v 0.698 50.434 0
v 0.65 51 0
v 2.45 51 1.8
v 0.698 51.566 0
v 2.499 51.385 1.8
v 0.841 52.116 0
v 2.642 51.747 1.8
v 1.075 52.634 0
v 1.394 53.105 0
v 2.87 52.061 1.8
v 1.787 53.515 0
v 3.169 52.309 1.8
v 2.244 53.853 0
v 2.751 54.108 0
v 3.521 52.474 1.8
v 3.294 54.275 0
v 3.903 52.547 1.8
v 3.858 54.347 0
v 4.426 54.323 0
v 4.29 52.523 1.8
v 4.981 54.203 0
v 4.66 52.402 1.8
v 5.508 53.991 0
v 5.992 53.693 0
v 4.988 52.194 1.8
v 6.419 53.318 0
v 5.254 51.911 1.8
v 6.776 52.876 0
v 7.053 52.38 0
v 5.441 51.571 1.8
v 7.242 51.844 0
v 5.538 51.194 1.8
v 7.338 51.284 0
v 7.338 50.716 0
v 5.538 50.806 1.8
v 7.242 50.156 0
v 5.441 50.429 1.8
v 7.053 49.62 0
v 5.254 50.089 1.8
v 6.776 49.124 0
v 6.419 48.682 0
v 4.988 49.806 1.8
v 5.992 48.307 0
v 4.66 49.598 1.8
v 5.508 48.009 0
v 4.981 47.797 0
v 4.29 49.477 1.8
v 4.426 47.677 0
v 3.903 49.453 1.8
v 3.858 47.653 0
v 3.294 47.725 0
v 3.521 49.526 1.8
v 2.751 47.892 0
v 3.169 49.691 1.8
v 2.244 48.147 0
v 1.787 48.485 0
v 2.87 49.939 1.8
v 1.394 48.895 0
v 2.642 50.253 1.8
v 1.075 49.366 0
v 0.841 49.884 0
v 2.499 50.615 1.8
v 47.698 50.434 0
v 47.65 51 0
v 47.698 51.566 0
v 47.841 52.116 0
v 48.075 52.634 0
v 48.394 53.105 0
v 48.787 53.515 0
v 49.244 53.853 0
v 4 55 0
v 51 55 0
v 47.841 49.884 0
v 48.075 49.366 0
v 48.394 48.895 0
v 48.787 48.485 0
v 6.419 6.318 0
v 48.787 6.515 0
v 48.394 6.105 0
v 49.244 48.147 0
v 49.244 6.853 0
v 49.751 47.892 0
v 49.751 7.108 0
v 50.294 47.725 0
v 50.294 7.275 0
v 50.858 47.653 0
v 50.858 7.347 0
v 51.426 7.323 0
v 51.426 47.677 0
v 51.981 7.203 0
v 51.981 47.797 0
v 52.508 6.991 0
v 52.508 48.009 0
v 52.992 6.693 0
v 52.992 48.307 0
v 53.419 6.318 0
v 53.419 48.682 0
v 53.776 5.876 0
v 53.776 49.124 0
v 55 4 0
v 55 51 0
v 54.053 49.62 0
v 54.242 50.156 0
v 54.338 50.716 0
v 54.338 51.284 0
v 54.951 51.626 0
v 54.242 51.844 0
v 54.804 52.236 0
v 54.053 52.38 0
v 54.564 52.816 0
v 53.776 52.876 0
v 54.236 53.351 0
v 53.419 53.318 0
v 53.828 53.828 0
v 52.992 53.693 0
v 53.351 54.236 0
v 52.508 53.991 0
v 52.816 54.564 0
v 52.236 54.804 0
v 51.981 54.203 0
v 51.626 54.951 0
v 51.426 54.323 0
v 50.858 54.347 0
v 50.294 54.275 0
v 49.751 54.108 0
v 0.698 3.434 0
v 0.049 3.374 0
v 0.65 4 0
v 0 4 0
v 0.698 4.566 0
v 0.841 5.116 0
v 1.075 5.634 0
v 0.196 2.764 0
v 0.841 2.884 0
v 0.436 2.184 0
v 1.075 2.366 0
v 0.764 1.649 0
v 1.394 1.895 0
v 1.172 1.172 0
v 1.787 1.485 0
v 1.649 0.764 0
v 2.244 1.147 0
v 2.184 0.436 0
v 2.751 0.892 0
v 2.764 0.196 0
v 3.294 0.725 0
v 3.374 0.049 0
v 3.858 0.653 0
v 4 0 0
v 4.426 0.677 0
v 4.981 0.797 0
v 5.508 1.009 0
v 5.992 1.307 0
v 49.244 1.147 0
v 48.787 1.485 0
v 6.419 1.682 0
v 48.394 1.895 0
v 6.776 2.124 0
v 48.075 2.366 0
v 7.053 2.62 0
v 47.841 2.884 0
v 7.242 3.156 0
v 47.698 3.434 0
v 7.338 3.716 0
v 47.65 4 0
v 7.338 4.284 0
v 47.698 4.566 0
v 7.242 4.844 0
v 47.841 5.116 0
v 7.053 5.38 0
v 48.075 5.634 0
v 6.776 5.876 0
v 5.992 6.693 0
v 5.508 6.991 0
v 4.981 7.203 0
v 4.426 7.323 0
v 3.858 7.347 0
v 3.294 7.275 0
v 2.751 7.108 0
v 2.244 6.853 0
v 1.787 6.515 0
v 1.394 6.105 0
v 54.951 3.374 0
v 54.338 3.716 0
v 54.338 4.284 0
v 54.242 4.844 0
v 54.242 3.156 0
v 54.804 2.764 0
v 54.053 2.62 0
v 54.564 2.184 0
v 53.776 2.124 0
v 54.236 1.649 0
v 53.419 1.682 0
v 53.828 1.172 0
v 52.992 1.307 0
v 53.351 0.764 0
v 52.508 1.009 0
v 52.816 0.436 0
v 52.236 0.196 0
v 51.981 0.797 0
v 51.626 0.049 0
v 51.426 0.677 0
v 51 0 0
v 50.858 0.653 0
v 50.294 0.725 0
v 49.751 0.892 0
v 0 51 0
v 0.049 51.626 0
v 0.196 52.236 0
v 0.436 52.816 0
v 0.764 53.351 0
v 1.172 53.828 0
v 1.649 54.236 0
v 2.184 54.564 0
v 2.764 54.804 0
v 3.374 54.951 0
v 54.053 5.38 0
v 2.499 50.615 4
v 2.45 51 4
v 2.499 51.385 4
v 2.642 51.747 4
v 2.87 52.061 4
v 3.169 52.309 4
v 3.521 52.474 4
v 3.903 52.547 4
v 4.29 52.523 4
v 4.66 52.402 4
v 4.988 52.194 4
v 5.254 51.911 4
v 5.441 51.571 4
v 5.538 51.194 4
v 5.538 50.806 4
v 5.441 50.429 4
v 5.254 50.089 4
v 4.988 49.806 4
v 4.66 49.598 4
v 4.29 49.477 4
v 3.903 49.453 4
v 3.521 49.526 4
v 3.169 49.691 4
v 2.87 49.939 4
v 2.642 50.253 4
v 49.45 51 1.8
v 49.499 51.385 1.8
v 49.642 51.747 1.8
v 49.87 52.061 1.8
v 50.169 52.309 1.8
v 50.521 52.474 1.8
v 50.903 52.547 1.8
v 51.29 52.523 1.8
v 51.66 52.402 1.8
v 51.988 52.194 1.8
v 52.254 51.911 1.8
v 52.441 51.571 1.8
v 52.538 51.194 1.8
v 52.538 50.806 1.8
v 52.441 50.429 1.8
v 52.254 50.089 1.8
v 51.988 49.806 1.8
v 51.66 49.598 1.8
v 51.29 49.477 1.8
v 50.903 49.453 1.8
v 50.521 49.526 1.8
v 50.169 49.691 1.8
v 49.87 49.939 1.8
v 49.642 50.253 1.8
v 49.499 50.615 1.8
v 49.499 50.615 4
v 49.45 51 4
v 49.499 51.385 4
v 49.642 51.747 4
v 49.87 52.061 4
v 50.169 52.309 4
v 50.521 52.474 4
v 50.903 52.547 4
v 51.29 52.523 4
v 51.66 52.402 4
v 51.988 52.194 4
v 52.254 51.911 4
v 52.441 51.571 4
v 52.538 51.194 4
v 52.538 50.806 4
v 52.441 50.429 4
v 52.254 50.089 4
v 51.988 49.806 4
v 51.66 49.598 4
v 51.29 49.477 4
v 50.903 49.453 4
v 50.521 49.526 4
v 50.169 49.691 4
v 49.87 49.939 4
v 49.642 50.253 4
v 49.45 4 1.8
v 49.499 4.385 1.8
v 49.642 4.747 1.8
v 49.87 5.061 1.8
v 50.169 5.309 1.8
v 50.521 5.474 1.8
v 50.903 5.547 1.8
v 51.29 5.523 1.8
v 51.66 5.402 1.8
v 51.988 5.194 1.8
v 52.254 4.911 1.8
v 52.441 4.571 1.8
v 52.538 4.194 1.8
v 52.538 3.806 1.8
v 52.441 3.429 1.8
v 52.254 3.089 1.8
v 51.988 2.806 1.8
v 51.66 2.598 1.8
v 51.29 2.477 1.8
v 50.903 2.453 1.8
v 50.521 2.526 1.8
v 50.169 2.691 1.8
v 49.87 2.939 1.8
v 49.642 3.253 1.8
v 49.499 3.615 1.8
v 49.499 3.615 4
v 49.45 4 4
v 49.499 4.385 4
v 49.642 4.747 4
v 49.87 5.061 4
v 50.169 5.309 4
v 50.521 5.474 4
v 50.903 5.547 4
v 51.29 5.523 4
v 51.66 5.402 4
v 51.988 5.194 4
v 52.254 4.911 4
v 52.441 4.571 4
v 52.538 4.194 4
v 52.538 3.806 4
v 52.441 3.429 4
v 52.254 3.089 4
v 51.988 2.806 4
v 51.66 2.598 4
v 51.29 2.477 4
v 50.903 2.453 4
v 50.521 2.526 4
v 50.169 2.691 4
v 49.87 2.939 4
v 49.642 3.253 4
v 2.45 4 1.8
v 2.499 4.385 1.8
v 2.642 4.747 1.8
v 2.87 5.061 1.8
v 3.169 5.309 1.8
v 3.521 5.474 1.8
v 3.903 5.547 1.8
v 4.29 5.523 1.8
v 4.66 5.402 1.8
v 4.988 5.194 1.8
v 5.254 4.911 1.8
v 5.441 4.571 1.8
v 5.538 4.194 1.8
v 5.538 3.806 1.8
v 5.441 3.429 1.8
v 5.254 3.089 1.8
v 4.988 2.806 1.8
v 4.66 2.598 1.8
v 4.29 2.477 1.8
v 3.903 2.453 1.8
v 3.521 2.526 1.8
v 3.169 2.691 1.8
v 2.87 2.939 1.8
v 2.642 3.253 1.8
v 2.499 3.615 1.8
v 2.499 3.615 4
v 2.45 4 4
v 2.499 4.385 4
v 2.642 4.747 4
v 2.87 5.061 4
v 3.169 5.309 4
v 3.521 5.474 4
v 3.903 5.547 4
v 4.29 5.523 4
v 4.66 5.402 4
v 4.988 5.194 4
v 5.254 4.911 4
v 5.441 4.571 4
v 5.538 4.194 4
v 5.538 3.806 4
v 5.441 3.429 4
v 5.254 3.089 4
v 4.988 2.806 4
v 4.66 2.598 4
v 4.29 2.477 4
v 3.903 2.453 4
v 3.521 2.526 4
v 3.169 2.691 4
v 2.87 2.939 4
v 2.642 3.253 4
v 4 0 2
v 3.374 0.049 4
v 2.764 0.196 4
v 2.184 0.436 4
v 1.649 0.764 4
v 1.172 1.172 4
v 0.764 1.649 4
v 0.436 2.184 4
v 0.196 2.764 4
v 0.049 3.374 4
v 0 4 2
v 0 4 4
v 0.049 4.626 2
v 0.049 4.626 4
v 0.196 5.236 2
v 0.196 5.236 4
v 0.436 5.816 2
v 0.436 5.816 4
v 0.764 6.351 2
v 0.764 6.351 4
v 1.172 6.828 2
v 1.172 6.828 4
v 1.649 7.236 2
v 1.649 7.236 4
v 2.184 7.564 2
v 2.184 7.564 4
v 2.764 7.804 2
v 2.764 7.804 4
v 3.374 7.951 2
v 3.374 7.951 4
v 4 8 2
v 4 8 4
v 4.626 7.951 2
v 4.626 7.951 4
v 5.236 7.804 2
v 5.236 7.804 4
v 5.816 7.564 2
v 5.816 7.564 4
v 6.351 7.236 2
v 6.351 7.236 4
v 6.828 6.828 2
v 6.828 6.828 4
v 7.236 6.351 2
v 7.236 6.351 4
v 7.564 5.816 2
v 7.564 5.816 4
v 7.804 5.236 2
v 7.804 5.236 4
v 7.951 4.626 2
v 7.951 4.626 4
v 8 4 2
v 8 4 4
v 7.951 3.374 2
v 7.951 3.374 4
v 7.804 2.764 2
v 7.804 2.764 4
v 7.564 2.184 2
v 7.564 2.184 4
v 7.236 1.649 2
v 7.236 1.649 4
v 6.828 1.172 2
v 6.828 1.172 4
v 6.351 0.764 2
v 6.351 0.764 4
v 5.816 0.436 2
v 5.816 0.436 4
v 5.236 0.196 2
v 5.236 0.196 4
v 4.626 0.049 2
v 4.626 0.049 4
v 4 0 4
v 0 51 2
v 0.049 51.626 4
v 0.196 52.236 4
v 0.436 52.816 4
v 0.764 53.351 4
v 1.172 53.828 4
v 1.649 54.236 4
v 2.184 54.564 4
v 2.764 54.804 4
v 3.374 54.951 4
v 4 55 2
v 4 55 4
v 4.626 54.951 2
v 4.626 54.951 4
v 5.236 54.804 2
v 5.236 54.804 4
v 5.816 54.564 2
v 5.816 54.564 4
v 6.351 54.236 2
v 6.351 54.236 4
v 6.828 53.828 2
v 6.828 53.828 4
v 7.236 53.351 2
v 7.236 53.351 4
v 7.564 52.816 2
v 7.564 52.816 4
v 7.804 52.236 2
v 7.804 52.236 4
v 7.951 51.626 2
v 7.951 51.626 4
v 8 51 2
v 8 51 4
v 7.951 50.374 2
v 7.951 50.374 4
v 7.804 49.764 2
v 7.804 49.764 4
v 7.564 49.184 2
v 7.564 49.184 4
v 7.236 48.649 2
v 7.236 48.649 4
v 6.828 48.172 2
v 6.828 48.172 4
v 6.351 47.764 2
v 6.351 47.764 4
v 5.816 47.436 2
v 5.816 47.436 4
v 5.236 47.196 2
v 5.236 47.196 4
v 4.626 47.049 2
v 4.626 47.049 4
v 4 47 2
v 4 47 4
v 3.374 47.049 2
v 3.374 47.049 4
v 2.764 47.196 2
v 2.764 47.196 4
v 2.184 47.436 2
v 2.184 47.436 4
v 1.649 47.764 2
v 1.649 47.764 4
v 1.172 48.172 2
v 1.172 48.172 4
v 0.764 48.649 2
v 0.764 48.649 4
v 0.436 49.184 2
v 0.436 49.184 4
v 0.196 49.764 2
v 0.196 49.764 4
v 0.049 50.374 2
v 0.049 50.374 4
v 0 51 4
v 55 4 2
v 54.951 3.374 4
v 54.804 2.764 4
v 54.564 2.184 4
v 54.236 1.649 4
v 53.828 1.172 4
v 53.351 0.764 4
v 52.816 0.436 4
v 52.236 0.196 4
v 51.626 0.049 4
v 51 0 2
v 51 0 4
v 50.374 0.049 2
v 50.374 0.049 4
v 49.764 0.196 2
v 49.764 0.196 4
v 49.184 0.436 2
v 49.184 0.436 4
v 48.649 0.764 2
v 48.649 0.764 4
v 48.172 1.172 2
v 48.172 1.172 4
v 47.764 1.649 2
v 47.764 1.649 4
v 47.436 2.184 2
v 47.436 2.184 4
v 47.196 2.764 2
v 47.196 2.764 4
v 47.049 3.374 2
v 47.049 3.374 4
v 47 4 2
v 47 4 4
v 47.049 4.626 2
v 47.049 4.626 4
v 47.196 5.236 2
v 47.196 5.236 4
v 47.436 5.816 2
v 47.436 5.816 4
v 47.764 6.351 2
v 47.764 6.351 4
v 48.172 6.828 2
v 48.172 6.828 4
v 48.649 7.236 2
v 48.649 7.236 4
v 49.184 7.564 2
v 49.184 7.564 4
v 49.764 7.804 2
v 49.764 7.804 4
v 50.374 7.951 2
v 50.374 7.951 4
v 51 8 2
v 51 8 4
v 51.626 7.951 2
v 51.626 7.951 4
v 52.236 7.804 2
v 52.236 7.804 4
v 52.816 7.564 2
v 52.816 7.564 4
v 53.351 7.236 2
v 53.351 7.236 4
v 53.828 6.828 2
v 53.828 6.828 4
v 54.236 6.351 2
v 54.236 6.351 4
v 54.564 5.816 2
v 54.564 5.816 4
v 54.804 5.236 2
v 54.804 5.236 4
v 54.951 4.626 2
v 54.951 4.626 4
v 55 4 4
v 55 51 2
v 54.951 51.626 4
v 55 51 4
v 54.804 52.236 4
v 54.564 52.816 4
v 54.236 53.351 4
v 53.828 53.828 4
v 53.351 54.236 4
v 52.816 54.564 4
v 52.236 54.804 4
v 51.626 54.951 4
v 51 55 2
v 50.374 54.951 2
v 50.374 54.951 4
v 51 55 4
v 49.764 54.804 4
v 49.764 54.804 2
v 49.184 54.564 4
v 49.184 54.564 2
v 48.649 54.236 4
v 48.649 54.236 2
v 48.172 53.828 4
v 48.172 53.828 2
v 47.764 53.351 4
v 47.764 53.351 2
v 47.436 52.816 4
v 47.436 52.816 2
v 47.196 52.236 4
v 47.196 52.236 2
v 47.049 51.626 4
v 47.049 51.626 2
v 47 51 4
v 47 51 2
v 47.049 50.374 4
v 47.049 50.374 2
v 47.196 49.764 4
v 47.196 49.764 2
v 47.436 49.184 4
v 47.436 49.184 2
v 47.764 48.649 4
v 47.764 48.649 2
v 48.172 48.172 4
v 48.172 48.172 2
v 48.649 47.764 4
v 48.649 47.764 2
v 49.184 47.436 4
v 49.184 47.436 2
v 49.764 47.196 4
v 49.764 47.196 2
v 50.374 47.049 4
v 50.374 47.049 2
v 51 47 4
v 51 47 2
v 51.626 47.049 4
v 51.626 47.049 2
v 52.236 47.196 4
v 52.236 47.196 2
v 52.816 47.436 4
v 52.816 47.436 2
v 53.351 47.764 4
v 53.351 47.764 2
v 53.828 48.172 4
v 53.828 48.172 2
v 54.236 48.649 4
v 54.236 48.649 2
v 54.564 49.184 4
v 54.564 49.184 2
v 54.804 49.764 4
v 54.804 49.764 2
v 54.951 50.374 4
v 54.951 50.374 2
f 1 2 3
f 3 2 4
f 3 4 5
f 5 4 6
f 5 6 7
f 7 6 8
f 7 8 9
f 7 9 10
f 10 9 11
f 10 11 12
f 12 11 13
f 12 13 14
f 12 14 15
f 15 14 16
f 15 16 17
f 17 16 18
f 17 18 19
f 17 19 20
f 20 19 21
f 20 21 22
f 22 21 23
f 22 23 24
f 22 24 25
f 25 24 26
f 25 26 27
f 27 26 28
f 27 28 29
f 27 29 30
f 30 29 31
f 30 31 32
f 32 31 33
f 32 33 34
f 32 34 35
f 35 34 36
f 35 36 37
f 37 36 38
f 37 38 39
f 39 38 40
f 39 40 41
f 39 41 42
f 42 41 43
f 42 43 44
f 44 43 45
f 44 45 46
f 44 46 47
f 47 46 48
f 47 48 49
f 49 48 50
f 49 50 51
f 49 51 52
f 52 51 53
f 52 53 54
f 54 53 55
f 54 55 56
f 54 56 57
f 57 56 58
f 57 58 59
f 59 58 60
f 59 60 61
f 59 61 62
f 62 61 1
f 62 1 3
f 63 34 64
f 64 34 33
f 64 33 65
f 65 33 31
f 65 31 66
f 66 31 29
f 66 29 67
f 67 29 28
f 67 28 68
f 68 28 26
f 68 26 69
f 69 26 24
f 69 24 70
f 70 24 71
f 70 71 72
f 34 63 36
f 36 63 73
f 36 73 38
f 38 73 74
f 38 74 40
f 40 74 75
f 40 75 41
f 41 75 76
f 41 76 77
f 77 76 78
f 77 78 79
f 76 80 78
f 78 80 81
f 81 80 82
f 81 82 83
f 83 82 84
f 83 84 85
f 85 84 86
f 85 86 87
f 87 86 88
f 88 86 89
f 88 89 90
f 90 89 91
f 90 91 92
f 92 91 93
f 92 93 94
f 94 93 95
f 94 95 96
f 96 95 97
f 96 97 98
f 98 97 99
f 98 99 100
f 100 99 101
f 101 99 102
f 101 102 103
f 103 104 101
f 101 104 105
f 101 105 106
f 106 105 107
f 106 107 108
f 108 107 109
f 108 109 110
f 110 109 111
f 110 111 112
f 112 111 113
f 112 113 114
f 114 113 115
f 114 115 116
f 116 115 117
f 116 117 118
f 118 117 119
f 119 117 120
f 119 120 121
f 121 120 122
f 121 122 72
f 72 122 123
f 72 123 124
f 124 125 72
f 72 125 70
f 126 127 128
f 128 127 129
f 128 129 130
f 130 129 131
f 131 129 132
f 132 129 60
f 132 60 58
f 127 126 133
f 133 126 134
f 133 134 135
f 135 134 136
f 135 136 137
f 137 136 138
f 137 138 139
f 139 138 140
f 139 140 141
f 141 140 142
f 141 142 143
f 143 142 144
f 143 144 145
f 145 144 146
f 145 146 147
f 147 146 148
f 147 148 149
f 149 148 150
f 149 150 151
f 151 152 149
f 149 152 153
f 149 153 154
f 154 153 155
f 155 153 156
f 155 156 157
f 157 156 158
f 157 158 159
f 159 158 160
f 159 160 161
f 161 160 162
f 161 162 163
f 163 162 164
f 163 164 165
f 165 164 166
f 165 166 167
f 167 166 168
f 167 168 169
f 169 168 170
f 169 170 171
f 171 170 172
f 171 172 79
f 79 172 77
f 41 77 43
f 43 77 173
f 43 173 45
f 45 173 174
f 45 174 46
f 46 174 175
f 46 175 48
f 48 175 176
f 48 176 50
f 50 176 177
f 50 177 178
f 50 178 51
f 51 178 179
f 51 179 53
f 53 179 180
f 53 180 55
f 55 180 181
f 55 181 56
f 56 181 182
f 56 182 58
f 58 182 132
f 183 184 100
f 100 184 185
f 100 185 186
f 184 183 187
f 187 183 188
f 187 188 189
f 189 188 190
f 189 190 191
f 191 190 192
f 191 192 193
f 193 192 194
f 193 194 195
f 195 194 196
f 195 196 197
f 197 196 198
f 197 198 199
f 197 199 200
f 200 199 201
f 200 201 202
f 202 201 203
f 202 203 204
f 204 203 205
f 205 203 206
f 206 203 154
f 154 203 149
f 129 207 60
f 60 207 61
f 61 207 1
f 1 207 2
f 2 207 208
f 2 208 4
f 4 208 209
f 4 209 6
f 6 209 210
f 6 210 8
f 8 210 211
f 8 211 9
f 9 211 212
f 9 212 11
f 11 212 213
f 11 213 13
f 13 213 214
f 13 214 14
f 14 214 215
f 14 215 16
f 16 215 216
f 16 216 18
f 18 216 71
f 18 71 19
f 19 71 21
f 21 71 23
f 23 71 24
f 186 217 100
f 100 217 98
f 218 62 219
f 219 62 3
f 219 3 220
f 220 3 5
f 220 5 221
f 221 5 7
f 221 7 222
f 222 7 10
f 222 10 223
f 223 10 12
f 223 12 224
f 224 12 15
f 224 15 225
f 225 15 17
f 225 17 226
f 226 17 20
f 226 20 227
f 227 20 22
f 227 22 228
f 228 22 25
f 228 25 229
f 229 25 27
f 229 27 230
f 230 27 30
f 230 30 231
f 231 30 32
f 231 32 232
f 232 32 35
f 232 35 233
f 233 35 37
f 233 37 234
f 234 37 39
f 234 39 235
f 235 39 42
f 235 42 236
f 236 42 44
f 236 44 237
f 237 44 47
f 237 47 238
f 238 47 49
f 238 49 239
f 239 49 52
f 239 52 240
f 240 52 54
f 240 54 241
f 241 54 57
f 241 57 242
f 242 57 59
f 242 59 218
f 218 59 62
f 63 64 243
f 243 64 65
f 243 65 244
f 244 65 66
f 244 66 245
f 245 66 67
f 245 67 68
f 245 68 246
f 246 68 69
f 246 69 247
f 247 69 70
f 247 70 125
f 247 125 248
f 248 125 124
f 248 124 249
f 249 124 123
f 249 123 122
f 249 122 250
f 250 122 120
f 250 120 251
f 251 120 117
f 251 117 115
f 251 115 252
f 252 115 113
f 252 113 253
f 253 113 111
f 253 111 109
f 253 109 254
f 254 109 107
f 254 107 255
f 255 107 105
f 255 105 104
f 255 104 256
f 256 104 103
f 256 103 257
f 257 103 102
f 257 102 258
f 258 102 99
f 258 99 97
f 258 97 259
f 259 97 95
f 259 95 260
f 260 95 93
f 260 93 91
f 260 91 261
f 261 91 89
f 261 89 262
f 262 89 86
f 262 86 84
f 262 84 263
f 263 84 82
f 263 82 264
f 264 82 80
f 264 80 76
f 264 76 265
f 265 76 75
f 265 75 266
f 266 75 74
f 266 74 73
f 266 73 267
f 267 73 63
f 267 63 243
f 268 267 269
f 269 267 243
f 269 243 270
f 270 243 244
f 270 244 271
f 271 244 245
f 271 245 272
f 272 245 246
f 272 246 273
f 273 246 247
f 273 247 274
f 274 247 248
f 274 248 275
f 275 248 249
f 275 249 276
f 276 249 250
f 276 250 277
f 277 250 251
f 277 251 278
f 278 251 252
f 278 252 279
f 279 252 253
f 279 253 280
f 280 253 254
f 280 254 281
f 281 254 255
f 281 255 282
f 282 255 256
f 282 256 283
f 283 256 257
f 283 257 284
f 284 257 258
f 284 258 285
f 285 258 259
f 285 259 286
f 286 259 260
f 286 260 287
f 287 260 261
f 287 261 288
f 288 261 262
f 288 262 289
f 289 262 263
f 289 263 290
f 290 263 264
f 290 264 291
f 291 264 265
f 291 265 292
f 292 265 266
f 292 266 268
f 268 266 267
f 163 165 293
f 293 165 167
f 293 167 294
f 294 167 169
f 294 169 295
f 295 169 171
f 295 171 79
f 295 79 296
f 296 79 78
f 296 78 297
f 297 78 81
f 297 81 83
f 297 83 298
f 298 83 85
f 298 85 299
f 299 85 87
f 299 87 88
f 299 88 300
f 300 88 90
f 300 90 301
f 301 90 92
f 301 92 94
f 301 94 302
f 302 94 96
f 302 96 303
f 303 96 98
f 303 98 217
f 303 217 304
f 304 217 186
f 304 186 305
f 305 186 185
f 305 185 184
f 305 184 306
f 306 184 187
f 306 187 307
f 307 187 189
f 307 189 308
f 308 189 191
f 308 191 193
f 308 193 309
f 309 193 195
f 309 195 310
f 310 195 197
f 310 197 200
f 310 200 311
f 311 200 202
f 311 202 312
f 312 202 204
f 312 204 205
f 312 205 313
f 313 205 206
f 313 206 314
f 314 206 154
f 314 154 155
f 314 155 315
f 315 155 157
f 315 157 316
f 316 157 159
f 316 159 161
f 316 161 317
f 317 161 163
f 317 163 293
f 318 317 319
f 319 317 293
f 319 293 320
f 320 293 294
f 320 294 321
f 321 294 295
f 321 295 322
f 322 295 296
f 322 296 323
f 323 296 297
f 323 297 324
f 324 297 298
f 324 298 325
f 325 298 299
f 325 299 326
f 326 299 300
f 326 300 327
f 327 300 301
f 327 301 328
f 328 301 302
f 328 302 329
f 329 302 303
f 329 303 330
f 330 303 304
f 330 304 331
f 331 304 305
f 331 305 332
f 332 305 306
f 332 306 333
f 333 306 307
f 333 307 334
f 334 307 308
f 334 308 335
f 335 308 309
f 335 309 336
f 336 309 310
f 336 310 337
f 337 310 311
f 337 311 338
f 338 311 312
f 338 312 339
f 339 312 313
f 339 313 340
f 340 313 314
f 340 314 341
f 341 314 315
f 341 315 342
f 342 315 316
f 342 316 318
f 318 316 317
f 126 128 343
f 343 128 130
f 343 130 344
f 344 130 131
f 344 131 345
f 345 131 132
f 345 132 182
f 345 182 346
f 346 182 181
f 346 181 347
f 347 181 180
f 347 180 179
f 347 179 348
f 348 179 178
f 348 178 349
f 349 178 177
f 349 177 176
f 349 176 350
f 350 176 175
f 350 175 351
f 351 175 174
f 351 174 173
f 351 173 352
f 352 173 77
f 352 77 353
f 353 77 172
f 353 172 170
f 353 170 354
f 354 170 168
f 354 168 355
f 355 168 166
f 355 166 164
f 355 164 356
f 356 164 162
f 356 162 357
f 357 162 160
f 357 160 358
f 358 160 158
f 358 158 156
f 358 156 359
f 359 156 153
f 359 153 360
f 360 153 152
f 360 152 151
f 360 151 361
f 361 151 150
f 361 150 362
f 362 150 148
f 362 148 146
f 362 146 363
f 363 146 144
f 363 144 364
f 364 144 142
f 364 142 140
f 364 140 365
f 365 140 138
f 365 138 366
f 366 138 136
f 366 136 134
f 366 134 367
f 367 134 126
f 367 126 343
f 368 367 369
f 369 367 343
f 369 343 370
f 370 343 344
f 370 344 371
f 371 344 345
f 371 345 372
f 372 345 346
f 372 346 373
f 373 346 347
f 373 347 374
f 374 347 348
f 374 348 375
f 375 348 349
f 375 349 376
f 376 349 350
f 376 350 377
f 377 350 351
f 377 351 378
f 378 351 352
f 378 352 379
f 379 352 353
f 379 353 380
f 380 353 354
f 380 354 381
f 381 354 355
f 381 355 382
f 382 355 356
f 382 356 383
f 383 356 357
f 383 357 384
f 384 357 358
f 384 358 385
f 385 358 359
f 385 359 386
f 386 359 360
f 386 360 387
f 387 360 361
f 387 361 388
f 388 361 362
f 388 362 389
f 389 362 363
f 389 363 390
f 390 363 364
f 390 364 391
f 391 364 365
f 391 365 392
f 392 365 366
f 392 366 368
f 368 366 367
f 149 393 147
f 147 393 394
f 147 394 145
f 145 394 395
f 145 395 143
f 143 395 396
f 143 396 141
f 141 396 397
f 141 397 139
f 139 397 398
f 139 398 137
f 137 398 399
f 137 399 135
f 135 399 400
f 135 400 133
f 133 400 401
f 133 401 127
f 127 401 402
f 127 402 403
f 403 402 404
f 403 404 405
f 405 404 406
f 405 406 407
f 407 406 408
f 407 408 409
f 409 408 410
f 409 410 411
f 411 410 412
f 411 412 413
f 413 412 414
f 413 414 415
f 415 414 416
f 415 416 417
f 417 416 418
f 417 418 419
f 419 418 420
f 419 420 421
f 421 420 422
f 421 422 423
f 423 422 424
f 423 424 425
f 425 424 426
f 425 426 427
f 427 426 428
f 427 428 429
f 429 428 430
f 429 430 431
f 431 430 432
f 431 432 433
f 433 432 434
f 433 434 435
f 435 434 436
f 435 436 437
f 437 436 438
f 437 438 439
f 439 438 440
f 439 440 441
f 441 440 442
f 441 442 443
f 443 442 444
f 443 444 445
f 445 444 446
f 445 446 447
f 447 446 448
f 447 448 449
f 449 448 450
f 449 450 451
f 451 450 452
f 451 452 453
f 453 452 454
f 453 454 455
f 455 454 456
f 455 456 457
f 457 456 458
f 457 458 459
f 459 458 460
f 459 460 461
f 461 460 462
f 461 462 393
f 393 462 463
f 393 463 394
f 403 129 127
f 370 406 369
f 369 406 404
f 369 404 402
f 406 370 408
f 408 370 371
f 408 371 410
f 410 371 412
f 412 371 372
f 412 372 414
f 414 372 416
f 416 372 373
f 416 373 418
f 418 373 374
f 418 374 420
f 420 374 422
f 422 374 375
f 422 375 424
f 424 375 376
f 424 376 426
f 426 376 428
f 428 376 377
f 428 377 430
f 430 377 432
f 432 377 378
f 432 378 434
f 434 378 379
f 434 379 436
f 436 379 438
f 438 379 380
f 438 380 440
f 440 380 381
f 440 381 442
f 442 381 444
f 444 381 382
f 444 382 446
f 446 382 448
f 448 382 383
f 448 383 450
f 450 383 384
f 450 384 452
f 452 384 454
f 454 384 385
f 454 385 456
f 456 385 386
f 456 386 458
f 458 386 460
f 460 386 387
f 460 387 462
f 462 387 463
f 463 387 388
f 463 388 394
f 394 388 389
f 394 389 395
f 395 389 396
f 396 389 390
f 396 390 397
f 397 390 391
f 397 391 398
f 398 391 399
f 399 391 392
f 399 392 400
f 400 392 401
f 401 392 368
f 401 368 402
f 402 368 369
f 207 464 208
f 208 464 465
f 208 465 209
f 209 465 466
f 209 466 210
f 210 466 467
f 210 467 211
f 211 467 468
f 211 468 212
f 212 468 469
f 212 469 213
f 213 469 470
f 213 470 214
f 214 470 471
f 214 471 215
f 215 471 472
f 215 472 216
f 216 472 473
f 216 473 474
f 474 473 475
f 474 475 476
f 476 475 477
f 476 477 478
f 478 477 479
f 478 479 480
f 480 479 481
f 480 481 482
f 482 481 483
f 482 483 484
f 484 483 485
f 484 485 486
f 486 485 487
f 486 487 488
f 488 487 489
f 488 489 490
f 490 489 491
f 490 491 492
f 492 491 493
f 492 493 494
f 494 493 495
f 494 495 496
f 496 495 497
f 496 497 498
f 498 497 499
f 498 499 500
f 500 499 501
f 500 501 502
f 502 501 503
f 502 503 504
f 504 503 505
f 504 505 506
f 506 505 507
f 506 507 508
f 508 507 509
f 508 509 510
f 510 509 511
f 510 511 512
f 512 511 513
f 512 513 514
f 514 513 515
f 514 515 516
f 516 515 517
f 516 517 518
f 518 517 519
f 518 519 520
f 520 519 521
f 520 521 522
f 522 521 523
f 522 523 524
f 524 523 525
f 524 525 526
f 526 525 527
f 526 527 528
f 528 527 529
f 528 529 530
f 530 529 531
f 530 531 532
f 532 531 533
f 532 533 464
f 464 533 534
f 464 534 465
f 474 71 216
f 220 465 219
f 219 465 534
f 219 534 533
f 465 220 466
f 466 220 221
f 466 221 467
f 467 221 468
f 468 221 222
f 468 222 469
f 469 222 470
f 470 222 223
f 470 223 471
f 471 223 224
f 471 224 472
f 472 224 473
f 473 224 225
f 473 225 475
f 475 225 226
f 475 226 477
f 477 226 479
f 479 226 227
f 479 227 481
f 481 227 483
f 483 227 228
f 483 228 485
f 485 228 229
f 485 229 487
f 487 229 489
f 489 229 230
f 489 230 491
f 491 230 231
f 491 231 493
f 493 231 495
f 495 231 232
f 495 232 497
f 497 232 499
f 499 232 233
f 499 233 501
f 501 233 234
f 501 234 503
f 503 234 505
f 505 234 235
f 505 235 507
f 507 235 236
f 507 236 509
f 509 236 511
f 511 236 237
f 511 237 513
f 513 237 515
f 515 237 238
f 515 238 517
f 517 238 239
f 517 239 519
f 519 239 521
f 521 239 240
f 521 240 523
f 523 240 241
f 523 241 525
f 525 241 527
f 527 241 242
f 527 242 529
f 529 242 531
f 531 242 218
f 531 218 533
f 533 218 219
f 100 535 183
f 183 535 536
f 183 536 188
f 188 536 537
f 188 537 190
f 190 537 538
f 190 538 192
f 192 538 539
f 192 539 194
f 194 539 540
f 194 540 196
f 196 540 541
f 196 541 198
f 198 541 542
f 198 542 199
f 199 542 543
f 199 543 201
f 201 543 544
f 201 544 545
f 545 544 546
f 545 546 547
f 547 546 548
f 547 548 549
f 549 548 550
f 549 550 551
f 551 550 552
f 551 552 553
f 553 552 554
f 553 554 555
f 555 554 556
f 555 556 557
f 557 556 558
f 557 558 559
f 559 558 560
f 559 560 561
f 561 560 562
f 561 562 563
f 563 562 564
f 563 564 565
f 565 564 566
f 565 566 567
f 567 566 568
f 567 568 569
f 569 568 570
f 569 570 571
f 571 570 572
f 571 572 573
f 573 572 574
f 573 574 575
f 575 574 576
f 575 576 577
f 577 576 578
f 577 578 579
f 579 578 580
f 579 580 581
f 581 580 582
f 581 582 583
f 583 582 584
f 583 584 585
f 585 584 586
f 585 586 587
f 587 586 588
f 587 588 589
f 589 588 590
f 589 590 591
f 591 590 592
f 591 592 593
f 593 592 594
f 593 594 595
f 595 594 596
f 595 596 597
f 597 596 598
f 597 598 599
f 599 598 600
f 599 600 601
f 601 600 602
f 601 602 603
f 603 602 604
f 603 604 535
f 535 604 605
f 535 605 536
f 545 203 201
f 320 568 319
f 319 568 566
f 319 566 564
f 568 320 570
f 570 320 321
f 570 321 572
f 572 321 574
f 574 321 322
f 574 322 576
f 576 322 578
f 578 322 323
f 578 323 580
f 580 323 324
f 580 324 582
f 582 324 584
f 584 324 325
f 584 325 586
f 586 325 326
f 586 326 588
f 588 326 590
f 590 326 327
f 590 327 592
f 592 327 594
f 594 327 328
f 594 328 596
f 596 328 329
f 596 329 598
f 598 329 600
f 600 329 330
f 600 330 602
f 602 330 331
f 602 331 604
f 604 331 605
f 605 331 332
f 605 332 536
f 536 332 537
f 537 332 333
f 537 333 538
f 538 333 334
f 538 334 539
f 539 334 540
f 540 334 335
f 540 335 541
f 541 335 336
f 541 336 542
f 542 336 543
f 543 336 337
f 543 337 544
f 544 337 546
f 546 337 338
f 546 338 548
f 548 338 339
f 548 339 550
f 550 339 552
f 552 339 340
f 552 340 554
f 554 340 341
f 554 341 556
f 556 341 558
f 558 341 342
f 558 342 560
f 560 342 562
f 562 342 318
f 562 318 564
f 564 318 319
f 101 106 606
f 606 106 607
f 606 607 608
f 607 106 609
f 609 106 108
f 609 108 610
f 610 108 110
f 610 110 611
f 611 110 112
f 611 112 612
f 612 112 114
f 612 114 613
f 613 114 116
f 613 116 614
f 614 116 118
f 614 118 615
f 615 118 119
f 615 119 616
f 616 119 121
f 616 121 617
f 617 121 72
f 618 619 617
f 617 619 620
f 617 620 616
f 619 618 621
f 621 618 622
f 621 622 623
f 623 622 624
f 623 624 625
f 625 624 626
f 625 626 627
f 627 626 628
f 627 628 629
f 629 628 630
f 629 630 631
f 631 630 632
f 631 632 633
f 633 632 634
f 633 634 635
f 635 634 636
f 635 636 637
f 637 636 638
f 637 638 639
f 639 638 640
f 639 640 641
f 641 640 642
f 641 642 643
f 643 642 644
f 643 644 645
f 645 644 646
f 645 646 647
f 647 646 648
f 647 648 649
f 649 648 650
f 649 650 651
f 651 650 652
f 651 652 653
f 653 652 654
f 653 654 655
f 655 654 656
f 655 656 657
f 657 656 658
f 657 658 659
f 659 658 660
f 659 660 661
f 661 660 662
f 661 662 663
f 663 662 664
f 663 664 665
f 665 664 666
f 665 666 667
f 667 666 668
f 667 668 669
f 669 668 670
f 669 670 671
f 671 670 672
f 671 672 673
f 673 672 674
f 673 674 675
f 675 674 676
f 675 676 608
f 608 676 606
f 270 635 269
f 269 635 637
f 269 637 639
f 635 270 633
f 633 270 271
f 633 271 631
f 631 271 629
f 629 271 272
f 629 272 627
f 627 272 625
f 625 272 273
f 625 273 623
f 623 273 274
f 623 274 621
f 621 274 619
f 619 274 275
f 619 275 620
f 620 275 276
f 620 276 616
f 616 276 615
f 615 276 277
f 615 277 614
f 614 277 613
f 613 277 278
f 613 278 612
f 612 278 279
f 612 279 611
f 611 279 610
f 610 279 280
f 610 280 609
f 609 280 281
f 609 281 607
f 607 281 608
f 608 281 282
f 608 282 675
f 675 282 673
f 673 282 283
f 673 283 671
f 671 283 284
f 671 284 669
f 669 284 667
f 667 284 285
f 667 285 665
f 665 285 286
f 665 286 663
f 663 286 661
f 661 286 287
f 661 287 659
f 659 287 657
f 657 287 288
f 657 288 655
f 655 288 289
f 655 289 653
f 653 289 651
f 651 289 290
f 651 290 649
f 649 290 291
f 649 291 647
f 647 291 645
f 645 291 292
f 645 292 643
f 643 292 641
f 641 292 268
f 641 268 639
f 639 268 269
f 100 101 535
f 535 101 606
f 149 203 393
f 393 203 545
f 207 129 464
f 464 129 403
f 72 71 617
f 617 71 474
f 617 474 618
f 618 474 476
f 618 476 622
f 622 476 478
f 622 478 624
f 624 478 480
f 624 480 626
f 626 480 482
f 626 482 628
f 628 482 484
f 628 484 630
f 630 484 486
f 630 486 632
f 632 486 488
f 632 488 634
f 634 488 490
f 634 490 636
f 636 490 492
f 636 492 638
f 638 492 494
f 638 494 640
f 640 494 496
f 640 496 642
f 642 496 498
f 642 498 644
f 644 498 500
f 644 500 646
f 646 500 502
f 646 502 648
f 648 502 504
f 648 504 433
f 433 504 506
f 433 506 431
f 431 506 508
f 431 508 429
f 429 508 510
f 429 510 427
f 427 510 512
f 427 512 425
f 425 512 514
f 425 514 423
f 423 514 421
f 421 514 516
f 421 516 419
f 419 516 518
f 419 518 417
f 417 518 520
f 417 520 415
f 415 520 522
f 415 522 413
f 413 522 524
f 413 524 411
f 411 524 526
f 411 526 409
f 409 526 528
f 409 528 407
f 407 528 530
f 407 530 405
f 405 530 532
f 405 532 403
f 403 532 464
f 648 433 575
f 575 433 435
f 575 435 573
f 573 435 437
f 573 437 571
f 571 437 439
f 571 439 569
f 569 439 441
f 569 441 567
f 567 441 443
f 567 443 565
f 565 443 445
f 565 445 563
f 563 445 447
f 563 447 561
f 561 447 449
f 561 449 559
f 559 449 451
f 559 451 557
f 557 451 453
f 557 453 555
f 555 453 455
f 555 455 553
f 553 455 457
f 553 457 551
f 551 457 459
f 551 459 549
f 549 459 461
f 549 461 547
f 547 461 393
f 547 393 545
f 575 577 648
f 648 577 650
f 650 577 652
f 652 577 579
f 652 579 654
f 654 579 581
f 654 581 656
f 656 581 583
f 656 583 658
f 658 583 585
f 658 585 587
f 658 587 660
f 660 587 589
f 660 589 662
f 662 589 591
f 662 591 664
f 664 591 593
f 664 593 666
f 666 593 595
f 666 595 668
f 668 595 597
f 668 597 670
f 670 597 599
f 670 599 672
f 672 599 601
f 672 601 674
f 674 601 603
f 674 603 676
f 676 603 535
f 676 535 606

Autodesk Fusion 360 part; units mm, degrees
sketch "Sketch1" plane through (0, 0, 0) normal (0, 0, 1) x (1, 0, 0)
  line L0 (0, 0) -> (55, 0)
  line L1 (55, 0) -> (55, 55)
  line L2 (55, 55) -> (0, 55)
  line L3 (0, 55) -> (0, 0)
  circle A0 centre (4, 51) radius 4
  circle A1 centre (51, 51) radius 4
  circle A2 centre (4, 4) radius 4
  circle A3 centre (51, 4) radius 4
  circle A4 centre (4, 51) radius 1.55
  circle A5 centre (51, 51) radius 1.55
  circle A6 centre (4, 4) radius 1.55
  circle A7 centre (51, 4) radius 1.55
  dimension "d1" = 55
  dimension "d2" = 55
  dimension "d3" = 8
  dimension "d4" = 8
  dimension "d5" = 8
  dimension "d6" = 8
  dimension "d7" = 4
  dimension "d8" = 4
  dimension "d9" = 4
  dimension "d10" = 4
  dimension "d11" = 4
  dimension "d12" = 4
  dimension "d13" = 4
  dimension "d14" = 4
  dimension "d15" = 3.1
  dimension "d16" = 3.1
  dimension "d17" = 3.1
  dimension "d18" = 3.1
extrude "Extrude1" add sketch "Sketch1" along normal blind 2 contours L0 L1 L2 L3 A0 A1 A2 A3
extrude "Extrude2" add sketch "Sketch1" along normal blind 4 contours A2 | A3 | A0 | A1
chamfer "Chamfer1" distance 1.8 angle 45 4 edges at (2.5549, 4.5605, 0) (49.5549, 4.5605, 0) (49.5549, 51.5605, 0) (2.5549, 51.5605, 0)
